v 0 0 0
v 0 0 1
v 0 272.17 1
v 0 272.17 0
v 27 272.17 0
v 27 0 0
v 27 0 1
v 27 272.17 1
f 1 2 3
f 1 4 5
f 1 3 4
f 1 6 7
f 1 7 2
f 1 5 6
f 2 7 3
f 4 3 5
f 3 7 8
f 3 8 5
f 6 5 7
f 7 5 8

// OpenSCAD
/* Warning, this is a very basic generator with a lot of approximation 
input data : [FBGA, BGC, 27x272.17mm, 1071, , A, C04-25065A]
generated by com.zoubworld.electronics.cad.model3d.Basic
Date : Sun Feb 15 10:50:49 CET 2026
*/

//body
color("black")
translate([0,0,0])
cube([27.0,272.17,1.0], center=false);
